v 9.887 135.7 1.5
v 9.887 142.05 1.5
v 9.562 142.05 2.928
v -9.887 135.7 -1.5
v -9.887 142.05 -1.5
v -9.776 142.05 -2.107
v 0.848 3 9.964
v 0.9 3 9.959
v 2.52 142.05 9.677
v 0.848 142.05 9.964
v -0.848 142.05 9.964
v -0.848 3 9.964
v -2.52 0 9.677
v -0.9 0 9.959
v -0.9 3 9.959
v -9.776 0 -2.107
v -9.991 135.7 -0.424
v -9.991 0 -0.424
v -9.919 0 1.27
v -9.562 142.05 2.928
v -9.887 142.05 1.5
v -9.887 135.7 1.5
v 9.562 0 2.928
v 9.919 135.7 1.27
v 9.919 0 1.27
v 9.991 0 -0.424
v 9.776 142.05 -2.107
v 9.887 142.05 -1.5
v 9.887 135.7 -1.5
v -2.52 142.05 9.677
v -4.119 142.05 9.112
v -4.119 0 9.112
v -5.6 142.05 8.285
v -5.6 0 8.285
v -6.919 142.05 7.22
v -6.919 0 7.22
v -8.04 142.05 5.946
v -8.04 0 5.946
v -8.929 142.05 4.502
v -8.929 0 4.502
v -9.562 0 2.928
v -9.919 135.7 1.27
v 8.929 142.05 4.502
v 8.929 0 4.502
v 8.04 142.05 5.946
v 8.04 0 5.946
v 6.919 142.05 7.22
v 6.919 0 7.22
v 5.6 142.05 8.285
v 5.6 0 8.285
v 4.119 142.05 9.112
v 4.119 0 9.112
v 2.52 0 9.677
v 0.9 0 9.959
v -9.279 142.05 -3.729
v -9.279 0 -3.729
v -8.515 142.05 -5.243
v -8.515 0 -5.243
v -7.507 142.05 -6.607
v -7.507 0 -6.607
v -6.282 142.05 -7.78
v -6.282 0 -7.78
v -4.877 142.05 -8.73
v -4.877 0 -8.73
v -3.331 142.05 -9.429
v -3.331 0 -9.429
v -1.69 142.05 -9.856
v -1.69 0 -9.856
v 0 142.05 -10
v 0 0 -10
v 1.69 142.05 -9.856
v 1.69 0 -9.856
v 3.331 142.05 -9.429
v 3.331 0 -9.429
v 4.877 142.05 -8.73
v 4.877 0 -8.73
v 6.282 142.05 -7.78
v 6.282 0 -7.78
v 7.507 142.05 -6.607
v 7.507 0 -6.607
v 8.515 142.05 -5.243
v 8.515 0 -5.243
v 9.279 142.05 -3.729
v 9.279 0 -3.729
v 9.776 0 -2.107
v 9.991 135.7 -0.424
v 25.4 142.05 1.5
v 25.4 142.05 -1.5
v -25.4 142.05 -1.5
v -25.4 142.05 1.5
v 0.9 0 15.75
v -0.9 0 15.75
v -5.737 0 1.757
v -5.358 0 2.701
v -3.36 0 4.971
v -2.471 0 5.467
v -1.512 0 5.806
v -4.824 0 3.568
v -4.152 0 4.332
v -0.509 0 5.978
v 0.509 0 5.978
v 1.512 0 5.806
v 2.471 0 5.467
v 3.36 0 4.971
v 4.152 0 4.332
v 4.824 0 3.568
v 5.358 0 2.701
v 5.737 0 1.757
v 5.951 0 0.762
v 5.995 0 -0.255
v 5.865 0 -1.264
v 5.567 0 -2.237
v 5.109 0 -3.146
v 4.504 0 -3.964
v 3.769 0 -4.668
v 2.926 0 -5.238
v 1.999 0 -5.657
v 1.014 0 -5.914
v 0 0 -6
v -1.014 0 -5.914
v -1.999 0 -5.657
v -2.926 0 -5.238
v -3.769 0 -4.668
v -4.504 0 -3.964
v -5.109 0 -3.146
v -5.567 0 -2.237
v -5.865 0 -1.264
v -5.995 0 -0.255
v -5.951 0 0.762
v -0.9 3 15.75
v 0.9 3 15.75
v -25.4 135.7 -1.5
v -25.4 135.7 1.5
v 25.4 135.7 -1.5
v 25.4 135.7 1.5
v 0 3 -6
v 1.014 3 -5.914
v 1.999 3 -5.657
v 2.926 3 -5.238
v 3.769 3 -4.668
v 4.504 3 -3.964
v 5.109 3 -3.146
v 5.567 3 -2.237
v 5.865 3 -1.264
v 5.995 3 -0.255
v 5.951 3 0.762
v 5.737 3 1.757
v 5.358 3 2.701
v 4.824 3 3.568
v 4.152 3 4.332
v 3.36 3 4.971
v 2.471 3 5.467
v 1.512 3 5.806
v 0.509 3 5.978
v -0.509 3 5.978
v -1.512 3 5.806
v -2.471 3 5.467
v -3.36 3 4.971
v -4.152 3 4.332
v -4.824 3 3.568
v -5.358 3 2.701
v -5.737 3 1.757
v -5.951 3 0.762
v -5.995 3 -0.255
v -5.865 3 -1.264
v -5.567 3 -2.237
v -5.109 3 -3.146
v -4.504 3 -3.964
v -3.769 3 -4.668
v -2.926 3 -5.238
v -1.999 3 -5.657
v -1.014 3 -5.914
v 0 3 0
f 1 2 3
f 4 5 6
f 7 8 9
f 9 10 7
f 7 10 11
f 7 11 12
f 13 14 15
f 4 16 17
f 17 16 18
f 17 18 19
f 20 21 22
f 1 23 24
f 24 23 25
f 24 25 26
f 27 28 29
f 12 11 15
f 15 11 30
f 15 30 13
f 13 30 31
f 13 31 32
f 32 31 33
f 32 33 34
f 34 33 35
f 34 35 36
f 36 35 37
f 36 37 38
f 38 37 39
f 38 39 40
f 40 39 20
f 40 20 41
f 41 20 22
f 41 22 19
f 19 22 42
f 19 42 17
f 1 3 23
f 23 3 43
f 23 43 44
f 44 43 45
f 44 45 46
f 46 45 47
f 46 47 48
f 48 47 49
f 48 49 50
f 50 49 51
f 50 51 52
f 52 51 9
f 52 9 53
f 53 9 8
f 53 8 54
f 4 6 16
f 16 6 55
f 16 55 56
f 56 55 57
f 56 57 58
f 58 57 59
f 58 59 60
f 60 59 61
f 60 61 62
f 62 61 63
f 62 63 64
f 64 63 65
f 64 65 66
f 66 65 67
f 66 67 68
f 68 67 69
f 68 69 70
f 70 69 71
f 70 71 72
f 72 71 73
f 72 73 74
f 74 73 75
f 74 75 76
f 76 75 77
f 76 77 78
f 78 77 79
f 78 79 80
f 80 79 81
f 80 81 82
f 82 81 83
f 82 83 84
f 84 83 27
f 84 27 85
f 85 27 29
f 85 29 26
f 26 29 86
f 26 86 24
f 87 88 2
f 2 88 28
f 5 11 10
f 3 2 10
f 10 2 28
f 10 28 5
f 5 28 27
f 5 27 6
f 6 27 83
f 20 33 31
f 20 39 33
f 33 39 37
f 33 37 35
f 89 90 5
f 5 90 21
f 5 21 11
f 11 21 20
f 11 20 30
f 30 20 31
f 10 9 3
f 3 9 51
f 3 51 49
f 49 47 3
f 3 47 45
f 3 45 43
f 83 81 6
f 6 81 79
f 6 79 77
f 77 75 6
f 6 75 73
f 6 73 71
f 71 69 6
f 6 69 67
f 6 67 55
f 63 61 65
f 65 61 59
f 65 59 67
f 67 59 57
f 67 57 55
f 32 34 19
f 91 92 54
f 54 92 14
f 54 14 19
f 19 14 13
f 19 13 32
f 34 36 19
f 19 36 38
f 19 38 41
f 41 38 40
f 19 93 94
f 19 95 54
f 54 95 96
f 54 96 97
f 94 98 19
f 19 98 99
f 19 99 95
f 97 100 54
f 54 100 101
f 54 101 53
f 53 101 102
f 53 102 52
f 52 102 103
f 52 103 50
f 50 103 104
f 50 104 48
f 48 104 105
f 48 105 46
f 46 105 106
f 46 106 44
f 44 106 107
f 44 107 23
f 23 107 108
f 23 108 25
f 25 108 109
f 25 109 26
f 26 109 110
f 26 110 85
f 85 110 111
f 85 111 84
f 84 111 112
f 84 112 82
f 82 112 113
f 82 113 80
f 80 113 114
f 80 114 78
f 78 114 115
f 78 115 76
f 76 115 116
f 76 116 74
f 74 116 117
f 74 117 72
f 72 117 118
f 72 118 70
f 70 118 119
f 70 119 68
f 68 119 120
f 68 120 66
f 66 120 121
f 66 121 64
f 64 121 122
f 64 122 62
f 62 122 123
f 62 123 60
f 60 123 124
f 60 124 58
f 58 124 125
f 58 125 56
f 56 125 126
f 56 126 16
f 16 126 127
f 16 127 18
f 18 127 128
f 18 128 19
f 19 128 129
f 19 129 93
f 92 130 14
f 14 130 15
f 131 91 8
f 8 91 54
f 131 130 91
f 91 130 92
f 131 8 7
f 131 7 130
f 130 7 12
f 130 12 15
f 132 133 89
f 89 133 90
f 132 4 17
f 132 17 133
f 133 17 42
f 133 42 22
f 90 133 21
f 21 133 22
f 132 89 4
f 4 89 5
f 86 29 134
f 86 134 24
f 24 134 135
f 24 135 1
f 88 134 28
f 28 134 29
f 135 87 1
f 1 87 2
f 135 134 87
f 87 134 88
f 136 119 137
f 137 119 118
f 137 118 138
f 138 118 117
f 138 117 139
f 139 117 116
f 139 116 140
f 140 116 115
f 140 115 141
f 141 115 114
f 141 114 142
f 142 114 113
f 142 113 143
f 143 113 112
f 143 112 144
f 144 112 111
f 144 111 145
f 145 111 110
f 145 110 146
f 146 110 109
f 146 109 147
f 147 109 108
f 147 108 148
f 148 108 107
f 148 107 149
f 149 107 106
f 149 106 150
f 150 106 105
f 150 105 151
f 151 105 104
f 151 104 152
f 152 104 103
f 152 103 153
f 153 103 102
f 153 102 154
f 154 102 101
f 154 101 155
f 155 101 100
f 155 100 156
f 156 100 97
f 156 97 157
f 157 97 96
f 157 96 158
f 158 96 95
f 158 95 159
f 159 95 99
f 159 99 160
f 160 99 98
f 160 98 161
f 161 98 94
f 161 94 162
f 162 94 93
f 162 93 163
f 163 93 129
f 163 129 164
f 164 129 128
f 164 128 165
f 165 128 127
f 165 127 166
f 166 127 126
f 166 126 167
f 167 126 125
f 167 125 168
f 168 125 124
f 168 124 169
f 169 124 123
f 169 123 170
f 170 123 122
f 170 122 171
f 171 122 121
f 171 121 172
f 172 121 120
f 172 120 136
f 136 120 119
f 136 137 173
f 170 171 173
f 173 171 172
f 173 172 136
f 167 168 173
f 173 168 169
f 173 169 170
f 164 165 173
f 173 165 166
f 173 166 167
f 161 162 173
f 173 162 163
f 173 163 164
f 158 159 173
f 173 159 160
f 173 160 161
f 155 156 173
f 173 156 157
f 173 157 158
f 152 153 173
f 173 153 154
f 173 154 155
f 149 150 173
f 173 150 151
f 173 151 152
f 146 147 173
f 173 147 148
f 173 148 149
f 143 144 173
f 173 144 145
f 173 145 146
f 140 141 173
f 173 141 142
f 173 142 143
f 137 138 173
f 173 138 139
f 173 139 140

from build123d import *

# Parameters (mm, degrees)
SKETCH1_R           = 10
BOSS_EXTRUDE1_DEPTH = 142.050008
BOSS_EXTRUDE2_DEPTH = 3
SKETCH4_W           = 50.8
SKETCH4_H           = 3
BOSS_EXTRUDE3_DEPTH = 6.35
SKETCH5_R           = 6
CUT_EXTRUDE1_DEPTH  = 3


with BuildPart() as part:
    # Sketch1 → Boss-Extrude1 (new body)
    with BuildSketch(Plane(origin=(0, 0, 0), x_dir=(1, 0, 0), z_dir=(0, 1, 0))):
        Circle(SKETCH1_R)
    extrude(amount=BOSS_EXTRUDE1_DEPTH)

    # Sketch3 → Boss-Extrude2 (add)
    with BuildSketch(Plane.XZ):
        with BuildLine():
            Line((-0.9, 15.75), (0.9, 15.75))
            Line((0.9, 15.75), (0.9, 9.354806465))
            ThreePointArc((0.9, 9.354806465), (0, 9.398), (-0.9, 9.354806465))
            Line((-0.9, 9.354806465), (-0.9, 15.75))
        make_face()
    extrude(amount=-BOSS_EXTRUDE2_DEPTH)

    # Sketch4 → Boss-Extrude3 (add)
    with BuildSketch(Plane(origin=(0, 142.050008, 0), x_dir=(1, 0, 0), z_dir=(0, 1, 0))):
        Rectangle(SKETCH4_W, SKETCH4_H)
    extrude(amount=-BOSS_EXTRUDE3_DEPTH)

    # Sketch5 → Cut-Extrude1 (cut)
    with BuildSketch(Plane.XZ):
        Circle(SKETCH5_R)
    extrude(amount=-CUT_EXTRUDE1_DEPTH, mode=Mode.SUBTRACT)


solid = part.part
